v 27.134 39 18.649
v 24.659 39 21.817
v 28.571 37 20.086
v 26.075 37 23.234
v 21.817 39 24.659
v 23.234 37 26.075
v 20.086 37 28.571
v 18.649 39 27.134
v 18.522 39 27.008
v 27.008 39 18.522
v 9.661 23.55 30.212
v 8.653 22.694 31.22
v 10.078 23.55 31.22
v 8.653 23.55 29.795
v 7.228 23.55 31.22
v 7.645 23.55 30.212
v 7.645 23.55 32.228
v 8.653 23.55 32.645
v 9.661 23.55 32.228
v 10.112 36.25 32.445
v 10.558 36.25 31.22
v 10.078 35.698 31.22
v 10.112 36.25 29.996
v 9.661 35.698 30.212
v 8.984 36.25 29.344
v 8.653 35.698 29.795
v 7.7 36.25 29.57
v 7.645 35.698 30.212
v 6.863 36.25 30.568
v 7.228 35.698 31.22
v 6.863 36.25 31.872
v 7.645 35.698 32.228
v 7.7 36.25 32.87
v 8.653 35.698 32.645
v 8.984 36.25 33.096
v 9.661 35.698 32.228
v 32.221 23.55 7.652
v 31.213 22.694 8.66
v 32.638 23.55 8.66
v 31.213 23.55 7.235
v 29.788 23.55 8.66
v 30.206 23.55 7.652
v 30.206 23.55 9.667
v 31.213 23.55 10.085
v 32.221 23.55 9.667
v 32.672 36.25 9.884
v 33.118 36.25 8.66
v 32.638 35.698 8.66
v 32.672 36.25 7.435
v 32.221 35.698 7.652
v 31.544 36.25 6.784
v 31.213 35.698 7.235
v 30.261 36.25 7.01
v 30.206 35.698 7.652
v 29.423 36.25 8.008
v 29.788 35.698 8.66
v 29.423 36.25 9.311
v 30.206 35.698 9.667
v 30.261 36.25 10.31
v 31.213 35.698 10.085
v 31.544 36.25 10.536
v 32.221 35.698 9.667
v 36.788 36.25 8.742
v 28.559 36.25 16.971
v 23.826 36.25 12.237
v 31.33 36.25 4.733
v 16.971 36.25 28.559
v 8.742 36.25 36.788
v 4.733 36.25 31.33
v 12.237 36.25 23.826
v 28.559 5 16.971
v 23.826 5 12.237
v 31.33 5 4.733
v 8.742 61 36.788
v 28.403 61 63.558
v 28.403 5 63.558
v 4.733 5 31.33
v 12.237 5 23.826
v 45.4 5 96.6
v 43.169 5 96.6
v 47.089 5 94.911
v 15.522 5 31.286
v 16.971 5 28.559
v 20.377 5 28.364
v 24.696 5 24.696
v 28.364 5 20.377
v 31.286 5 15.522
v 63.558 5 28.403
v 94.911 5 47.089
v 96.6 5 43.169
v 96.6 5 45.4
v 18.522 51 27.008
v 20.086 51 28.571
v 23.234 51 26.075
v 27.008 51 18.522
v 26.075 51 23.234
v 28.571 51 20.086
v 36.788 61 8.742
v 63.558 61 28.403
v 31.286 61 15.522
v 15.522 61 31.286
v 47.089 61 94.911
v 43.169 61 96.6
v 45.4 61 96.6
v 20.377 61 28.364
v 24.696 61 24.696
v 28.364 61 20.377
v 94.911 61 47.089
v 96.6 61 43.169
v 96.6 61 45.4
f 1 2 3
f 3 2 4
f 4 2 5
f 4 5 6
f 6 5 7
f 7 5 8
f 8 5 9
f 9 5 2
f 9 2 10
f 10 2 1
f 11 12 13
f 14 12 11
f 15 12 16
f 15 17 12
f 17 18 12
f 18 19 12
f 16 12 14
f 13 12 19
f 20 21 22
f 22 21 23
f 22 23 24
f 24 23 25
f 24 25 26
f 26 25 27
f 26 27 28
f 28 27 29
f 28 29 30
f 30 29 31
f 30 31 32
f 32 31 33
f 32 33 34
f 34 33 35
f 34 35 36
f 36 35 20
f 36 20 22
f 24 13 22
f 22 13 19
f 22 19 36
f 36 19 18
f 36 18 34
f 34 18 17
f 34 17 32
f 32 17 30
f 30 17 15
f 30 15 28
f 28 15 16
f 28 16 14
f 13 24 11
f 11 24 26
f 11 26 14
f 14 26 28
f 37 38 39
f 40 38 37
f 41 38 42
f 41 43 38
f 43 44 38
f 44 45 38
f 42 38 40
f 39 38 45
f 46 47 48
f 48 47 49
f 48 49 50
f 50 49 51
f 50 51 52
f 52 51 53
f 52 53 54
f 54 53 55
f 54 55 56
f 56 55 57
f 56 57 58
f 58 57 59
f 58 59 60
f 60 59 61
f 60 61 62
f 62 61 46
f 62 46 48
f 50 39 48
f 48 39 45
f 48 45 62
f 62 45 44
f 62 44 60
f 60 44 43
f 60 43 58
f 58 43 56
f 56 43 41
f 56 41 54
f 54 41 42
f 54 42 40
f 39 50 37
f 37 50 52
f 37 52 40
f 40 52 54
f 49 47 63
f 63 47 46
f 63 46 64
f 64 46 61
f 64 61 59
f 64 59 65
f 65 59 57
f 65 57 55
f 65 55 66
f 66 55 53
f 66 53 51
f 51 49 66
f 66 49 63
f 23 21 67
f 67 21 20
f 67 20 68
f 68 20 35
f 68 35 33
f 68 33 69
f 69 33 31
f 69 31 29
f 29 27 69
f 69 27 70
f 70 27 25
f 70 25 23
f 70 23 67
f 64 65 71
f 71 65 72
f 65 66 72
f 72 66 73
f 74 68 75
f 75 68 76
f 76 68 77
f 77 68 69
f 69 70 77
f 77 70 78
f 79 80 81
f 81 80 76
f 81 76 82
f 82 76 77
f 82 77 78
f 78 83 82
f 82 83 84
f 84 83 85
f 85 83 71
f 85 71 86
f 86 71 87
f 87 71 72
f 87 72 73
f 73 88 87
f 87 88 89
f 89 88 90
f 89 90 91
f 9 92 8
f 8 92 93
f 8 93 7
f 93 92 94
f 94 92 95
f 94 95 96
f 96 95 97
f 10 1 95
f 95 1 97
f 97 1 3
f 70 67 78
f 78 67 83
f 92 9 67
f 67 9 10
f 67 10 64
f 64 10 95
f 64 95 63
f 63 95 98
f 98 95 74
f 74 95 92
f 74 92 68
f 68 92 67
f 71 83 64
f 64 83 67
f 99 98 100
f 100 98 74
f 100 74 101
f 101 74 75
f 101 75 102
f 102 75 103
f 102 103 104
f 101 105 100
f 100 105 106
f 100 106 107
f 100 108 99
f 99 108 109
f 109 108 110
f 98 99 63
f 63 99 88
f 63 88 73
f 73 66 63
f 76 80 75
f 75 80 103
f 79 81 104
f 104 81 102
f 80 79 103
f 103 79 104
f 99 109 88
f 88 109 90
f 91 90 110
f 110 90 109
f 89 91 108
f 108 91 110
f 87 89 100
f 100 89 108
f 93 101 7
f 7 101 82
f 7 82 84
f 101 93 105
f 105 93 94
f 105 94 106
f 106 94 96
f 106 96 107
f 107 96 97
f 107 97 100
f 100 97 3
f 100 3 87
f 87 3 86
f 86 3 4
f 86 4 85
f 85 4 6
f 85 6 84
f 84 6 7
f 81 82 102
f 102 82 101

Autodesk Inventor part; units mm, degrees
ref_plane "YZ Plane" through (0, 0, 0) normal (1, 0, 0) x (0, 1, 0)
ref_plane "XZ Plane" through (0, 0, 0) normal (0, 1, 0) x (-1, 0, 0)
sketch "Sketch1" plane through (0, 0, 0) normal (0, 1, 0) x (-1, 0, 0)
  line L0 (101.6, -101.6) -> (-101.6, -101.6)
  line L1 (-101.6, -101.6) -> (-101.6, 101.6)
  line L2 (-101.6, 101.6) -> (101.6, 101.6)
  line L3 (101.6, 101.6) -> (101.6, -101.6)
  line L4 (96.6, -96.6) -> (-96.6, -96.6)
  line L5 (-96.6, -96.6) -> (-96.6, 96.6)
  line L6 (-96.6, 96.6) -> (96.6, 96.6)
  line L7 (96.6, 96.6) -> (96.6, -96.6)
  line L8 (101.6, 101.6) -> (-40.4, 101.6)
  circle A0 centre (0, 0) radius 88.9
  circle A1 centre (0, 0) radius 109.3376
  line L9 (-40.4, 101.6) -> (-101.6, 40.4)
  line L10 (-45.4, 101.6) -> (-101.6, 45.4)
  line L11 (96.6, 96.6) -> (96.6, 101.6)
  line L12 (-45.4, 101.6) -> (-35.4, 101.6)
  line L13 (-35.4, 101.6) -> (-35.4, 96.6)
  line L14 (-35.4, 96.6) -> (-45.4, 96.6)
  line L15 (-45.4, 96.6) -> (-45.4, 101.6)
  line L16 (-45.4, 101.6) -> (-43.114, 101.6)
  line L17 (-43.114, 101.6) -> (-43.114, 96.6)
  line L18 (-43.114, 96.6) -> (-45.4, 96.6)
  line L19 (-45.4, 96.6) -> (-45.4, 101.6)
  line L20 (-96.6, 45.4) -> (-101.6, 45.4)
  line L21 (-101.6, 45.4) -> (-101.6, 43.114)
  line L22 (-101.6, 43.114) -> (-96.6, 43.114)
  line L23 (-96.6, 43.114) -> (-96.6, 45.4)
  point P0 (96.6, 51.2168)
  point P1 (101.6, 40.4)
  point P2 (101.6, -40.4)
  point P3 (96.6, -51.2168)
  point P4 (-96.6, 45.4)
  point P5 (-45.4, 96.6)
  dimension "d0" = 203.2
  dimension "d1" = 203.2
  dimension "d2" = 101.6
  dimension "d3" = 101.6
  dimension "d4" = 5
  dimension "d5" = 5
  dimension "d6" = 5
  dimension "d7" = 5
  dimension "d10" = 142
  dimension "d12" = 61.2
  dimension "d14" = 177.8
  dimension "d15" = 5
  dimension "d16" = 5
  dimension "d17" = 10
  dimension "d86" = 2.286
  dimension "d87" = 2.286
extrude "Extrusion1" add sketch "Sketch1" along normal blind 5 contours L0 A1 L4 L7 L3 | L0 A1 L4 | A1 L7 L3 | L0 L1 A1 L5 L4 | A1 L7 L4 | L4 A1 L5 L9 L6 L7 | A1 L7 L11 L2 L3 | L4 L5 A1 | A1 L6 L7 | L1 L9 L22 L5 A1 | L11 L6 A1 L2 | L6 L13 L2 A1 | L1 L22 A1 | A1 L22 L9 | L22 L9 L5 | L6 L17 L9 L2 L13 | L1 L20 A1 L22 | A1 L20 L9 L22 | L20 A1 L10 L5 | L5 L10 L6 L9 | A1 L17 L2 | L9 L17 A1 | L6 L9 L17 | L1 L2 L10 A1 L6 L5 | L10 A1 L20 | L10 A1 L5 | L5 A1 L6 L10 | L15 A1 L17 L9 | L6 L10 A1 L15 | L17 A1 L15 L2 | L5 L6 A1 | L6 A1 L10 | A1 L10 L15 | A0
sketch "Sketch3" plane through (0, 5, 0) normal (0, 1, 0) x (1, 0, 0)
  circle A0 centre (0, 0) radius 88.9
  line L0 (-101.6, 101.6) -> (-101.6, -101.6) projected
  line L1 (-101.6, -101.6) -> (101.6, -101.6) projected
  line L2 (-101.6, 101.6) -> (101.6, 101.6)
  line L3 (101.6, 101.6) -> (101.6, -101.6)
  line L4 (101.6, -101.6) -> (-101.6, -101.6)
  line L5 (-101.6, -101.6) -> (-101.6, 101.6)
  line L6 (-96.6, 96.6) -> (96.6, 96.6)
  line L7 (96.6, 96.6) -> (96.6, -96.6)
  line L8 (96.6, -96.6) -> (-96.6, -96.6)
  line L9 (-96.6, -96.6) -> (-96.6, 96.6)
  line L10 (-101.6, -101.6) -> (40.4, -101.6)
  circle A1 centre (0, 0) radius 109.3376
  line L11 (40.4, -101.6) -> (101.6, -40.4)
  line L12 (101.6, -101.6) -> (101.6, 101.6) projected
  line L13 (45.4038, -101.6) -> (101.6, -45.4038)
  line L14 (96.6, -45.4) -> (101.6, -45.4038)
  line L15 (45.4, -96.6) -> (45.4038, -101.6)
  line L16 (96.6, -45.4) -> (101.6, -45.4)
  line L17 (101.6, -45.4) -> (101.6, -43.114)
  line L18 (101.6, -43.114) -> (96.6, -43.114)
  line L19 (96.6, -43.114) -> (96.6, -45.4)
  line L20 (45.4038, -101.6) -> (43.1178, -101.6)
  line L21 (43.1178, -101.6) -> (43.1178, -96.6)
  line L22 (43.1178, -96.6) -> (45.4038, -96.6)
  line L23 (45.4038, -96.6) -> (45.4038, -101.6)
  point P0 (45.4038, -101.6)
  point P1 (50.4038, -96.6)
  point P2 (96.6, -50.4038)
  dimension "d28" = 177.8
  dimension "d29" = 5
  dimension "d30" = 5
  dimension "d31" = 5
  dimension "d32" = 5
  dimension "d33" = 142
  dimension "d76" = 5.0038
  dimension "d77" = 5.0038
  dimension "d88" = 2.286
  dimension "d89" = 2.286
extrude "Extrusion3" cut sketch "Sketch3" against normal blind 2 contours L2 A1 L6 L9 L0 | A1 L9 L0 | L2 A1 L6 | A1 L9 L8 L1 L0 | L2 L3 A1 L7 L6 | A1 L8 L21 L11 L1 | L3 L11 L18 L7 A1 | A1 L21 L1 | L11 L21 A1 | L3 L18 A1 | A1 L18 L11
sketch "Sketch4" plane through (0, 5, 0) normal (0, 1, 0) x (1, 0, 0)
  line L0 (101.6, 101.6) -> (-101.6, 101.6)
  line L1 (-101.6, 101.6) -> (-101.6, -101.6)
  line L2 (-101.6, -101.6) -> (101.6, -101.6)
  line L3 (101.6, -101.6) -> (101.6, 101.6)
  circle A0 centre (0, 0) radius 2.5
  line L4 (11.3314, 2.139) -> (-2.139, -11.3314)
  line L5 (0, 0) -> (-5.6569, 5.6569)
  line L6 (-5.6569, -14.8492) -> (-26.163, 5.6569)
  line L7 (-5.6569, 26.163) -> (14.8492, 5.6569)
  circle A1 centre (-5.6569, 5.6569) radius 14
  line L8 (-26.163, 5.6569) -> (-5.6569, 26.163)
  line L9 (14.8492, 5.6569) -> (-5.6569, -14.8492)
  line L10 (-40.3051, 5.6569) -> (-5.6569, 40.3051)
  line L11 (-5.6569, 40.3051) -> (28.9914, 5.6569)
  line L12 (28.9914, 5.6569) -> (-5.6569, -28.9914)
  line L13 (-5.6569, -28.9914) -> (-40.3051, 5.6569)
  line L14 (-22.6451, 9.1747) -> (-9.1747, 22.6451)
  line L15 (-9.1747, 22.6451) -> (-12.7668, 26.2372)
  line L16 (-12.7668, 26.2372) -> (-26.2372, 12.7668)
  line L17 (-26.2372, 12.7668) -> (-22.6451, 9.1747)
  point P0 (9.525, 22.5)
  point P1 (-9.525, -6.5)
  dimension "d37" = 203.2
  dimension "d38" = 203.2
  dimension "d39" = 8
  dimension "d40" = 28
  dimension "d41" = 29
  dimension "d42" = 29
  dimension "d43" = 14.5
  dimension "d44" = 10
  dimension "d45" = 10
  dimension "d46" = 10
  dimension "d47" = 10
  dimension "d48" = 5.08
  dimension "d49" = 9.525
  dimension "d50" = 9.525
  dimension "d55" = 101.6
  dimension "d56" = 101.6
extrude "Extrusion4" cut sketch "Sketch4" against normal blind 1 contours A0 | L4 L9 L6 L8 L7 | L8 L17 L16 L15 | A1 | L10 L11 L12 L13
sketch "Sketch6" plane through (0, 5, 0) normal (0, 1, 0) x (1, 0, 0)
  line L0 (45.4038, -101.6) -> (0, 0)
  line L1 (50.4038, -96.6) -> (45.4038, -101.6) projected
  line L2 (96.6, -43.114) -> (96.6, 96.6) projected
  line L3 (101.6, -101.6) -> (101.6, 101.6) projected
  circle A0 centre (0, 0) radius 34.925
  circle A1 centre (0, 0) radius 33.425
  line L4 (-101.6, 101.6) -> (-101.6, -101.6) projected
  line L5 (-101.6, -101.6) -> (40.4, -101.6)
  line L6 (-101.6, -101.6) -> (101.6, -101.6) projected
  line L7 (101.6, 101.6) -> (101.6, -43.114) projected
  line L8 (101.6, -45.4038) -> (0, 0)
  line L9 (-96.6, -96.6) -> (43.1178, -96.6) projected
  line L10 (96.6, -43.114) -> (96.6, 96.6) projected
  line L11 (43.1178, -101.6) -> (-101.6, -101.6) projected
  line L12 (101.6, -45.4038) -> (96.6, -50.4038) projected
  line L13 (45.4038, -101.6) -> (101.6, -45.4038)
  line L14 (43.1178, -101.6) -> (101.6, -101.6) projected
  line L15 (0, 0) -> (101.6, -50.4076)
  line L16 (50.4076, -101.6) -> (0, 0)
  line L17 (43.1694, -96.6) -> (47.9269, -96.6)
  line L18 (96.6, -43.1694) -> (96.6, -47.9269)
  line L19 (40.4, -101.6) -> (101.6, -40.4)
  point P0 (13.6374, -30.5164)
  point P1 (30.5164, -13.6374)
  point P2 (14.2494, -31.8859)
  point P3 (31.2861, -15.5222)
  point P4 (29.9423, -14.8555)
  point P5 (31.8859, -14.2494)
  point P6 (98.2555, -48.7483)
  point P7 (96.6, -47.9269)
  point P8 (47.9269, -96.6)
  point P9 (15.5222, -31.2861)
  point P10 (96.6, -45.4)
  point P11 (45.4, -96.6)
  point P12 (14.8555, -29.9423)
  point P13 (96.6, -45.4)
  point P14 (45.4, -96.6)
  point P15 (45.4, -96.6)
  point P16 (47.089, -94.911)
  point P17 (94.911, -47.089)
  point P18 (96.6, -45.4)
  point P19 (43.8583, -98.1417)
  point P20 (98.1417, -43.8583)
  point P21 (45.4, -96.6)
  point P22 (96.6, -45.4)
  dimension "d71" = 69.85
  dimension "d72" = 66.85
  dimension "d75" = 142
  dimension "d78" = 5.0038
  dimension "d82" = 5.0038
extrude "Extrusion6" add sketch "Sketch6" along normal blind 56 contours L0 A0 L16 L19 L17 | L0 A1 L16 A0 | L16 A1 L15 A0 | L15 A0 L8 L18 L19 | A0 L15 A1 L8
fillet "Fillet3" radius 12.7 1 edges at (101.6, 2.5, 101.6)
sketch "Sketch9" plane through (0, 4, 0) normal (0, 1, 0) x (1, 0, 0)
  point P0 (0, 0)
sketch "Sketch10" plane through (0, 5, 0) normal (0, 1, 0) x (1, 0, 0)
  point P0 (0, 0)
ref_plane "Work Plane1" through (24.6957, 5, 24.6957) normal (0.7071068, 0, 0.7071068) x (0.7071068, 0, -0.7071068)
sketch "Sketch15" plane through (0, 5, 0) normal (0, 1, 0) x (1, 0, 0)
  line L0 (13.6374, -30.5164) -> (43.1694, -96.6) projected
  line L1 (28.4034, -63.5582) -> (-0.6569, -23.9914)
  line L2 (28.9914, 5.6569) -> (-5.6569, -28.9914) projected
  line L3 (96.6, -43.1694) -> (30.5164, -13.6374) projected
  line L4 (-5.6569, 40.3051) -> (28.9914, 5.6569) projected
  line L5 (63.5582, -28.4034) -> (23.9914, 0.6569)
  line L6 (2.3374, -28.0682) -> (28.0682, -2.3374)
  arc A0 (13.6374, -30.5164) -> (30.5164, -13.6374) centre (0, 0) ccw projected
  line L7 (28.4034, -63.5582) -> (13.6374, -30.5164)
  line L8 (63.5582, -28.4034) -> (30.5164, -13.6374)
  arc A1 (13.6374, -30.5164) -> (30.5164, -13.6374) centre (0, 0) ccw
  dimension "d138" = 5
  dimension "d139" = 5
  dimension "d140" = 5
extrude "Extrusion11" add sketch "Sketch15" along normal up to surface (56 mm away) contours L0 L1 L6 L5 L3 A0
sketch "Sketch16" plane through (0, 61, 0) normal (0, 1, 0) x (1, 0, 0)
  line L0 (2.3374, -28.0682) -> (28.0682, -2.3374) projected
  line L1 (9.4085, -20.9971) -> (12.2369, -23.8255)
  line L2 (12.2369, -23.8255) -> (23.8256, -12.2369)
  line L3 (23.8256, -12.2369) -> (20.9971, -9.4085)
  line L4 (12.2369, -23.8255) -> (23.8256, -12.2369)
  line L5 (23.8256, -12.2369) -> (28.5592, -16.9706)
  line L6 (28.5592, -16.9706) -> (16.9706, -28.5592)
  line L7 (16.9706, -28.5592) -> (12.2369, -23.8255)
  line L8 (28.4034, -63.5582) -> (2.3374, -28.0682) projected
  line L9 (28.0682, -2.3374) -> (63.5582, -28.4034) projected
  line L10 (23.8256, -12.2369) -> (31.3296, -4.7328)
  line L11 (12.2369, -23.8255) -> (4.7328, -31.3296)
  line L12 (28.4034, -63.5582) -> (2.3374, -28.0682) projected
  point P0 (0, 0)
  point P1 (29.3133, -3.2519)
  point P2 (12.2369, -23.8255)
  dimension "d144" = 10
  dimension "d145" = 10
  dimension "d146" = 4
  dimension "d152" = 0
  dimension "d153" = 0
extrude "Extrusion12" cut sketch "Sketch16" against normal up to surface (56 mm away)
sketch "Sketch11" plane through (24.6957, 5, 24.6957) normal (0.7071068, 0, 0.7071068) x (0.7071068, 0, -0.7071068)
  line L0 (143.6841, -5) -> (0, -5) projected
  line L1 (0, -5) -> (0, 40)
  circle A0 centre (0, 40) radius 5.5
  line L2 (-6, 46) -> (6, 46)
  line L3 (6, 46) -> (6, 34)
  line L4 (6, 34) -> (-6, 34)
  line L5 (-6, 34) -> (-6, 46)
  line L6 (0, 46) -> (0, 56)
  line L7 (8.1944, 56) -> (-8.1944, 56) projected
  dimension "d144" = 10
  dimension "d145" = 10
  dimension "d146" = 4
  dimension "d152" = 0
  dimension "d153" = 0
  dimension "d120" = 45
  dimension "d121" = 11
  dimension "d221" = 6
  dimension "d222" = 6
  dimension "d223" = 6
  dimension "d224" = 6
  dimension "d271" = 10
extrude "Extrusion8" cut sketch "Sketch11" against normal blind 127 contours A0 | L2 L3 L4 L5
sketch "Sketch18" plane through (101.6, 3, 43.114) normal (1, 0, 0) x (0, 0, -1)
  line L0 (-53.486, 2) -> (-58.486, 2) projected
  line L1 (-58.486, 2) -> (145.4353, 2)
  line L2 (145.4353, 2) -> (145.4353, -4.8825)
  line L3 (145.4353, -4.8825) -> (-58.486, -4.8825)
  line L4 (-58.486, -4.8825) -> (-58.486, 2)
  point P0 (43.114, -3)
extrude "Extrusion13" cut sketch "Sketch18" against normal through all
sketch "Sketch30" plane through (0, 61, 0) normal (0, 1, 0) x (1, 0, 0)
  line L0 (2.3374, -28.0682) -> (28.0682, -2.3374)
  line L1 (9.4085, -20.9971) -> (12.944, -24.5327)
  line L2 (12.944, -24.5327) -> (24.5327, -12.944)
  line L3 (24.5327, -12.944) -> (20.9971, -9.4085)
  line L4 (12.944, -24.5327) -> (24.5327, -12.944)
  line L5 (24.5327, -12.944) -> (28.5592, -16.9706)
  line L6 (28.5592, -16.9706) -> (16.9706, -28.5592)
  line L7 (16.9706, -28.5592) -> (12.944, -24.5327)
  line L8 (12.944, -24.5327) -> (5.3317, -32.145)
  line L9 (28.4034, -63.5582) -> (2.3374, -28.0682)
  line L10 (24.5327, -12.944) -> (32.145, -5.3317)
  line L11 (28.0682, -2.3374) -> (63.5582, -28.4034)
  line L12 (31.3296, -4.7328) -> (63.5582, -28.4034) projected
  line L13 (36.788, -8.7418) -> (28.5592, -16.9706)
  line L14 (28.5592, -16.9706) -> (8.7418, -36.788)
  line L15 (36.788, -8.7418) -> (32.145, -5.3317)
  line L16 (28.4034, -63.5582) -> (4.7328, -31.3296) projected
  line L17 (8.7418, -36.788) -> (5.3317, -32.145)
  point P0 (0, 0)
  point P1 (0, 0)
  point P2 (16.9706, -28.5592)
  dimension "d231" = 10
  dimension "d232" = 10
  dimension "d233" = 5
  dimension "d234" = 0
  dimension "d235" = 0
  dimension "d240" = 0
extrude "Extrusion14" cut sketch "Sketch30" against normal blind 24.75 contours L0 L1 L8 L9 | L0 L11 L10 L3 | L7 L14 L9 L8 | L10 L11 L13 L5
sketch "Sketch32" plane through (28.4034, 5, 63.5582) normal (-0.8059719, 0, 0.5919538) x (0.5919538, 0, 0.8059719)
  line L0 (-33.2148, 56) -> (-33.2148, 31.25) projected
  line L1 (-33.2148, 31.25) -> (-38.2681, 31.25)
  line L2 (-41.5932, 31.25) -> (-34.9759, 31.25) projected
  line L3 (-38.9873, 31.25) -> (-33.2148, 43.625)
  point P0 (-68.0396, -5)
  point P1 (-40.6047, 22.75)
  point P2 (-45.5472, 22.75)
sketch "Sketch33" plane through (0, 36.25, 0) normal (0, 1, 0) x (1, 0, 0)
  circle A0 centre (2, 3.9204) radius 1.5
  circle A1 centre (33.9053, 3.9204) radius 1.5
  line L0 (35.9053, 0) -> (31.9053, 0)
  line L1 (31.9053, 7.8408) -> (35.9053, 7.8408)
  line L2 (35.9053, 7.8408) -> (35.9053, 0)
  line L3 (31.9053, 2) -> (31.9053, 7.8408)
  line L4 (0, 0) -> (0, 7.8408)
  line L5 (0, 7.8408) -> (4, 7.8408)
  circle A2 centre (31.2131, -8.6598) radius 1.5
  circle A3 centre (8.6529, -31.22) radius 1.5
  line L6 (31.3296, -4.7328) -> (36.788, -8.7418) projected
  line L7 (8.7418, -36.788) -> (4.7328, -31.3296) projected
  line L8 (31.2131, -8.6598) -> (8.6529, -31.22)
  line L9 (36.788, -8.7418) -> (8.7418, -36.788) projected
  line L10 (12.2369, -23.8255) -> (16.9706, -28.5592) projected
  line L11 (28.5592, -16.9706) -> (23.8256, -12.2369) projected
  point P0 (36.9053, 0)
  point P1 (32.145, -5.3317)
  point P2 (5.3317, -32.145)
  point P3 (28.0682, -2.3374)
  point P4 (2.3374, -28.0682)
  dimension "d241" = 3
  dimension "d242" = 3
  dimension "d243" = 7.8408
  dimension "d244" = 3.9204
  dimension "d245" = 4
  dimension "d246" = 2
  dimension "d247" = 2
  dimension "d248" = 3.9204
  dimension "d249" = 31.9053
  dimension "d250" = 3
  dimension "d251" = 3
  dimension "d254" = 31.905
  dimension "d264" = 4
  dimension "d269" = 7.7629
  dimension "d270" = 7.7532
hole "Hole3" at (8.6529, 36.25, 31.22) at (31.2131, 36.25, 8.6598) direction (0, -1, 0) diameter 2.85 depth 12.7 tip angle 118 countersink diameter 3.81 countersink angle 82 thread size "M3.5x0.6" class "6H" standard "ANSI Metric M Profile"
chamfer "Chamfer1" distance 2 distance2 2 1 edges at (24.6957, 39, 24.6957) measured on face at (17.0887, 35, 30.4587)
sketch "Sketch34" plane through (0, 61, 0) normal (0, 1, 0) x (1, 0, 0)
  point P0 (0, 0)
equation "\"d1\" = d0"
equation "\"d2\" = 0.5 * d0"
equation "\"d3\" = 0.5 * d0"
properties part number "Box_Walls_2"
